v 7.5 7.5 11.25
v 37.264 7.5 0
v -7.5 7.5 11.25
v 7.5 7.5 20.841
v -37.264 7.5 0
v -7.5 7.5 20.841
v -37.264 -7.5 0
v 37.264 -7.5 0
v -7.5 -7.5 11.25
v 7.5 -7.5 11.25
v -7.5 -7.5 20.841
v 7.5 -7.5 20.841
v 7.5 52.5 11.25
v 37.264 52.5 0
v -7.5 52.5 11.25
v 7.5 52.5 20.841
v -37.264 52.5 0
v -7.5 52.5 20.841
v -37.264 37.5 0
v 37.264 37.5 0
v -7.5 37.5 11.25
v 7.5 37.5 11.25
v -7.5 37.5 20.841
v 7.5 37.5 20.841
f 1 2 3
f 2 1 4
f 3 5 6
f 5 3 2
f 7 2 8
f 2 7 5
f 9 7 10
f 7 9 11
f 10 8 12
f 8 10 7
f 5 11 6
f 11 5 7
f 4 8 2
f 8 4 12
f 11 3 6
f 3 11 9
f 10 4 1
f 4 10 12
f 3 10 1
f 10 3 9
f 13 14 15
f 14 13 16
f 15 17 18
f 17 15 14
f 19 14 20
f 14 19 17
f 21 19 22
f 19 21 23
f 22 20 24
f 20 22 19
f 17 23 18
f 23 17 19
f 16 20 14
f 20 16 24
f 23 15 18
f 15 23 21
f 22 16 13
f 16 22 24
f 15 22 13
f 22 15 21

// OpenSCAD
h=45;
w=80;
d=15;
angle=55;

module piece() {
difference() {
translate([0,0,h/2])
    cube([w,d,h],center=true);

color("green") 
    translate([-0.5*w,0,h/2])
        rotate([0,angle,0])
            cube([w/2,d,2*h],center=true);  
color("blue") 
    translate([0.5*w,0,h/2])
        rotate([0,-1*angle,0])
            cube([w/2,d,2*h],center=true);     
rotate(00,0,0)      
color("red")
    translate([0,0,0.75*h])
        cube([15,d,h],center=true);
}
}


piece();
translate([0,3*d,0])
    piece();
